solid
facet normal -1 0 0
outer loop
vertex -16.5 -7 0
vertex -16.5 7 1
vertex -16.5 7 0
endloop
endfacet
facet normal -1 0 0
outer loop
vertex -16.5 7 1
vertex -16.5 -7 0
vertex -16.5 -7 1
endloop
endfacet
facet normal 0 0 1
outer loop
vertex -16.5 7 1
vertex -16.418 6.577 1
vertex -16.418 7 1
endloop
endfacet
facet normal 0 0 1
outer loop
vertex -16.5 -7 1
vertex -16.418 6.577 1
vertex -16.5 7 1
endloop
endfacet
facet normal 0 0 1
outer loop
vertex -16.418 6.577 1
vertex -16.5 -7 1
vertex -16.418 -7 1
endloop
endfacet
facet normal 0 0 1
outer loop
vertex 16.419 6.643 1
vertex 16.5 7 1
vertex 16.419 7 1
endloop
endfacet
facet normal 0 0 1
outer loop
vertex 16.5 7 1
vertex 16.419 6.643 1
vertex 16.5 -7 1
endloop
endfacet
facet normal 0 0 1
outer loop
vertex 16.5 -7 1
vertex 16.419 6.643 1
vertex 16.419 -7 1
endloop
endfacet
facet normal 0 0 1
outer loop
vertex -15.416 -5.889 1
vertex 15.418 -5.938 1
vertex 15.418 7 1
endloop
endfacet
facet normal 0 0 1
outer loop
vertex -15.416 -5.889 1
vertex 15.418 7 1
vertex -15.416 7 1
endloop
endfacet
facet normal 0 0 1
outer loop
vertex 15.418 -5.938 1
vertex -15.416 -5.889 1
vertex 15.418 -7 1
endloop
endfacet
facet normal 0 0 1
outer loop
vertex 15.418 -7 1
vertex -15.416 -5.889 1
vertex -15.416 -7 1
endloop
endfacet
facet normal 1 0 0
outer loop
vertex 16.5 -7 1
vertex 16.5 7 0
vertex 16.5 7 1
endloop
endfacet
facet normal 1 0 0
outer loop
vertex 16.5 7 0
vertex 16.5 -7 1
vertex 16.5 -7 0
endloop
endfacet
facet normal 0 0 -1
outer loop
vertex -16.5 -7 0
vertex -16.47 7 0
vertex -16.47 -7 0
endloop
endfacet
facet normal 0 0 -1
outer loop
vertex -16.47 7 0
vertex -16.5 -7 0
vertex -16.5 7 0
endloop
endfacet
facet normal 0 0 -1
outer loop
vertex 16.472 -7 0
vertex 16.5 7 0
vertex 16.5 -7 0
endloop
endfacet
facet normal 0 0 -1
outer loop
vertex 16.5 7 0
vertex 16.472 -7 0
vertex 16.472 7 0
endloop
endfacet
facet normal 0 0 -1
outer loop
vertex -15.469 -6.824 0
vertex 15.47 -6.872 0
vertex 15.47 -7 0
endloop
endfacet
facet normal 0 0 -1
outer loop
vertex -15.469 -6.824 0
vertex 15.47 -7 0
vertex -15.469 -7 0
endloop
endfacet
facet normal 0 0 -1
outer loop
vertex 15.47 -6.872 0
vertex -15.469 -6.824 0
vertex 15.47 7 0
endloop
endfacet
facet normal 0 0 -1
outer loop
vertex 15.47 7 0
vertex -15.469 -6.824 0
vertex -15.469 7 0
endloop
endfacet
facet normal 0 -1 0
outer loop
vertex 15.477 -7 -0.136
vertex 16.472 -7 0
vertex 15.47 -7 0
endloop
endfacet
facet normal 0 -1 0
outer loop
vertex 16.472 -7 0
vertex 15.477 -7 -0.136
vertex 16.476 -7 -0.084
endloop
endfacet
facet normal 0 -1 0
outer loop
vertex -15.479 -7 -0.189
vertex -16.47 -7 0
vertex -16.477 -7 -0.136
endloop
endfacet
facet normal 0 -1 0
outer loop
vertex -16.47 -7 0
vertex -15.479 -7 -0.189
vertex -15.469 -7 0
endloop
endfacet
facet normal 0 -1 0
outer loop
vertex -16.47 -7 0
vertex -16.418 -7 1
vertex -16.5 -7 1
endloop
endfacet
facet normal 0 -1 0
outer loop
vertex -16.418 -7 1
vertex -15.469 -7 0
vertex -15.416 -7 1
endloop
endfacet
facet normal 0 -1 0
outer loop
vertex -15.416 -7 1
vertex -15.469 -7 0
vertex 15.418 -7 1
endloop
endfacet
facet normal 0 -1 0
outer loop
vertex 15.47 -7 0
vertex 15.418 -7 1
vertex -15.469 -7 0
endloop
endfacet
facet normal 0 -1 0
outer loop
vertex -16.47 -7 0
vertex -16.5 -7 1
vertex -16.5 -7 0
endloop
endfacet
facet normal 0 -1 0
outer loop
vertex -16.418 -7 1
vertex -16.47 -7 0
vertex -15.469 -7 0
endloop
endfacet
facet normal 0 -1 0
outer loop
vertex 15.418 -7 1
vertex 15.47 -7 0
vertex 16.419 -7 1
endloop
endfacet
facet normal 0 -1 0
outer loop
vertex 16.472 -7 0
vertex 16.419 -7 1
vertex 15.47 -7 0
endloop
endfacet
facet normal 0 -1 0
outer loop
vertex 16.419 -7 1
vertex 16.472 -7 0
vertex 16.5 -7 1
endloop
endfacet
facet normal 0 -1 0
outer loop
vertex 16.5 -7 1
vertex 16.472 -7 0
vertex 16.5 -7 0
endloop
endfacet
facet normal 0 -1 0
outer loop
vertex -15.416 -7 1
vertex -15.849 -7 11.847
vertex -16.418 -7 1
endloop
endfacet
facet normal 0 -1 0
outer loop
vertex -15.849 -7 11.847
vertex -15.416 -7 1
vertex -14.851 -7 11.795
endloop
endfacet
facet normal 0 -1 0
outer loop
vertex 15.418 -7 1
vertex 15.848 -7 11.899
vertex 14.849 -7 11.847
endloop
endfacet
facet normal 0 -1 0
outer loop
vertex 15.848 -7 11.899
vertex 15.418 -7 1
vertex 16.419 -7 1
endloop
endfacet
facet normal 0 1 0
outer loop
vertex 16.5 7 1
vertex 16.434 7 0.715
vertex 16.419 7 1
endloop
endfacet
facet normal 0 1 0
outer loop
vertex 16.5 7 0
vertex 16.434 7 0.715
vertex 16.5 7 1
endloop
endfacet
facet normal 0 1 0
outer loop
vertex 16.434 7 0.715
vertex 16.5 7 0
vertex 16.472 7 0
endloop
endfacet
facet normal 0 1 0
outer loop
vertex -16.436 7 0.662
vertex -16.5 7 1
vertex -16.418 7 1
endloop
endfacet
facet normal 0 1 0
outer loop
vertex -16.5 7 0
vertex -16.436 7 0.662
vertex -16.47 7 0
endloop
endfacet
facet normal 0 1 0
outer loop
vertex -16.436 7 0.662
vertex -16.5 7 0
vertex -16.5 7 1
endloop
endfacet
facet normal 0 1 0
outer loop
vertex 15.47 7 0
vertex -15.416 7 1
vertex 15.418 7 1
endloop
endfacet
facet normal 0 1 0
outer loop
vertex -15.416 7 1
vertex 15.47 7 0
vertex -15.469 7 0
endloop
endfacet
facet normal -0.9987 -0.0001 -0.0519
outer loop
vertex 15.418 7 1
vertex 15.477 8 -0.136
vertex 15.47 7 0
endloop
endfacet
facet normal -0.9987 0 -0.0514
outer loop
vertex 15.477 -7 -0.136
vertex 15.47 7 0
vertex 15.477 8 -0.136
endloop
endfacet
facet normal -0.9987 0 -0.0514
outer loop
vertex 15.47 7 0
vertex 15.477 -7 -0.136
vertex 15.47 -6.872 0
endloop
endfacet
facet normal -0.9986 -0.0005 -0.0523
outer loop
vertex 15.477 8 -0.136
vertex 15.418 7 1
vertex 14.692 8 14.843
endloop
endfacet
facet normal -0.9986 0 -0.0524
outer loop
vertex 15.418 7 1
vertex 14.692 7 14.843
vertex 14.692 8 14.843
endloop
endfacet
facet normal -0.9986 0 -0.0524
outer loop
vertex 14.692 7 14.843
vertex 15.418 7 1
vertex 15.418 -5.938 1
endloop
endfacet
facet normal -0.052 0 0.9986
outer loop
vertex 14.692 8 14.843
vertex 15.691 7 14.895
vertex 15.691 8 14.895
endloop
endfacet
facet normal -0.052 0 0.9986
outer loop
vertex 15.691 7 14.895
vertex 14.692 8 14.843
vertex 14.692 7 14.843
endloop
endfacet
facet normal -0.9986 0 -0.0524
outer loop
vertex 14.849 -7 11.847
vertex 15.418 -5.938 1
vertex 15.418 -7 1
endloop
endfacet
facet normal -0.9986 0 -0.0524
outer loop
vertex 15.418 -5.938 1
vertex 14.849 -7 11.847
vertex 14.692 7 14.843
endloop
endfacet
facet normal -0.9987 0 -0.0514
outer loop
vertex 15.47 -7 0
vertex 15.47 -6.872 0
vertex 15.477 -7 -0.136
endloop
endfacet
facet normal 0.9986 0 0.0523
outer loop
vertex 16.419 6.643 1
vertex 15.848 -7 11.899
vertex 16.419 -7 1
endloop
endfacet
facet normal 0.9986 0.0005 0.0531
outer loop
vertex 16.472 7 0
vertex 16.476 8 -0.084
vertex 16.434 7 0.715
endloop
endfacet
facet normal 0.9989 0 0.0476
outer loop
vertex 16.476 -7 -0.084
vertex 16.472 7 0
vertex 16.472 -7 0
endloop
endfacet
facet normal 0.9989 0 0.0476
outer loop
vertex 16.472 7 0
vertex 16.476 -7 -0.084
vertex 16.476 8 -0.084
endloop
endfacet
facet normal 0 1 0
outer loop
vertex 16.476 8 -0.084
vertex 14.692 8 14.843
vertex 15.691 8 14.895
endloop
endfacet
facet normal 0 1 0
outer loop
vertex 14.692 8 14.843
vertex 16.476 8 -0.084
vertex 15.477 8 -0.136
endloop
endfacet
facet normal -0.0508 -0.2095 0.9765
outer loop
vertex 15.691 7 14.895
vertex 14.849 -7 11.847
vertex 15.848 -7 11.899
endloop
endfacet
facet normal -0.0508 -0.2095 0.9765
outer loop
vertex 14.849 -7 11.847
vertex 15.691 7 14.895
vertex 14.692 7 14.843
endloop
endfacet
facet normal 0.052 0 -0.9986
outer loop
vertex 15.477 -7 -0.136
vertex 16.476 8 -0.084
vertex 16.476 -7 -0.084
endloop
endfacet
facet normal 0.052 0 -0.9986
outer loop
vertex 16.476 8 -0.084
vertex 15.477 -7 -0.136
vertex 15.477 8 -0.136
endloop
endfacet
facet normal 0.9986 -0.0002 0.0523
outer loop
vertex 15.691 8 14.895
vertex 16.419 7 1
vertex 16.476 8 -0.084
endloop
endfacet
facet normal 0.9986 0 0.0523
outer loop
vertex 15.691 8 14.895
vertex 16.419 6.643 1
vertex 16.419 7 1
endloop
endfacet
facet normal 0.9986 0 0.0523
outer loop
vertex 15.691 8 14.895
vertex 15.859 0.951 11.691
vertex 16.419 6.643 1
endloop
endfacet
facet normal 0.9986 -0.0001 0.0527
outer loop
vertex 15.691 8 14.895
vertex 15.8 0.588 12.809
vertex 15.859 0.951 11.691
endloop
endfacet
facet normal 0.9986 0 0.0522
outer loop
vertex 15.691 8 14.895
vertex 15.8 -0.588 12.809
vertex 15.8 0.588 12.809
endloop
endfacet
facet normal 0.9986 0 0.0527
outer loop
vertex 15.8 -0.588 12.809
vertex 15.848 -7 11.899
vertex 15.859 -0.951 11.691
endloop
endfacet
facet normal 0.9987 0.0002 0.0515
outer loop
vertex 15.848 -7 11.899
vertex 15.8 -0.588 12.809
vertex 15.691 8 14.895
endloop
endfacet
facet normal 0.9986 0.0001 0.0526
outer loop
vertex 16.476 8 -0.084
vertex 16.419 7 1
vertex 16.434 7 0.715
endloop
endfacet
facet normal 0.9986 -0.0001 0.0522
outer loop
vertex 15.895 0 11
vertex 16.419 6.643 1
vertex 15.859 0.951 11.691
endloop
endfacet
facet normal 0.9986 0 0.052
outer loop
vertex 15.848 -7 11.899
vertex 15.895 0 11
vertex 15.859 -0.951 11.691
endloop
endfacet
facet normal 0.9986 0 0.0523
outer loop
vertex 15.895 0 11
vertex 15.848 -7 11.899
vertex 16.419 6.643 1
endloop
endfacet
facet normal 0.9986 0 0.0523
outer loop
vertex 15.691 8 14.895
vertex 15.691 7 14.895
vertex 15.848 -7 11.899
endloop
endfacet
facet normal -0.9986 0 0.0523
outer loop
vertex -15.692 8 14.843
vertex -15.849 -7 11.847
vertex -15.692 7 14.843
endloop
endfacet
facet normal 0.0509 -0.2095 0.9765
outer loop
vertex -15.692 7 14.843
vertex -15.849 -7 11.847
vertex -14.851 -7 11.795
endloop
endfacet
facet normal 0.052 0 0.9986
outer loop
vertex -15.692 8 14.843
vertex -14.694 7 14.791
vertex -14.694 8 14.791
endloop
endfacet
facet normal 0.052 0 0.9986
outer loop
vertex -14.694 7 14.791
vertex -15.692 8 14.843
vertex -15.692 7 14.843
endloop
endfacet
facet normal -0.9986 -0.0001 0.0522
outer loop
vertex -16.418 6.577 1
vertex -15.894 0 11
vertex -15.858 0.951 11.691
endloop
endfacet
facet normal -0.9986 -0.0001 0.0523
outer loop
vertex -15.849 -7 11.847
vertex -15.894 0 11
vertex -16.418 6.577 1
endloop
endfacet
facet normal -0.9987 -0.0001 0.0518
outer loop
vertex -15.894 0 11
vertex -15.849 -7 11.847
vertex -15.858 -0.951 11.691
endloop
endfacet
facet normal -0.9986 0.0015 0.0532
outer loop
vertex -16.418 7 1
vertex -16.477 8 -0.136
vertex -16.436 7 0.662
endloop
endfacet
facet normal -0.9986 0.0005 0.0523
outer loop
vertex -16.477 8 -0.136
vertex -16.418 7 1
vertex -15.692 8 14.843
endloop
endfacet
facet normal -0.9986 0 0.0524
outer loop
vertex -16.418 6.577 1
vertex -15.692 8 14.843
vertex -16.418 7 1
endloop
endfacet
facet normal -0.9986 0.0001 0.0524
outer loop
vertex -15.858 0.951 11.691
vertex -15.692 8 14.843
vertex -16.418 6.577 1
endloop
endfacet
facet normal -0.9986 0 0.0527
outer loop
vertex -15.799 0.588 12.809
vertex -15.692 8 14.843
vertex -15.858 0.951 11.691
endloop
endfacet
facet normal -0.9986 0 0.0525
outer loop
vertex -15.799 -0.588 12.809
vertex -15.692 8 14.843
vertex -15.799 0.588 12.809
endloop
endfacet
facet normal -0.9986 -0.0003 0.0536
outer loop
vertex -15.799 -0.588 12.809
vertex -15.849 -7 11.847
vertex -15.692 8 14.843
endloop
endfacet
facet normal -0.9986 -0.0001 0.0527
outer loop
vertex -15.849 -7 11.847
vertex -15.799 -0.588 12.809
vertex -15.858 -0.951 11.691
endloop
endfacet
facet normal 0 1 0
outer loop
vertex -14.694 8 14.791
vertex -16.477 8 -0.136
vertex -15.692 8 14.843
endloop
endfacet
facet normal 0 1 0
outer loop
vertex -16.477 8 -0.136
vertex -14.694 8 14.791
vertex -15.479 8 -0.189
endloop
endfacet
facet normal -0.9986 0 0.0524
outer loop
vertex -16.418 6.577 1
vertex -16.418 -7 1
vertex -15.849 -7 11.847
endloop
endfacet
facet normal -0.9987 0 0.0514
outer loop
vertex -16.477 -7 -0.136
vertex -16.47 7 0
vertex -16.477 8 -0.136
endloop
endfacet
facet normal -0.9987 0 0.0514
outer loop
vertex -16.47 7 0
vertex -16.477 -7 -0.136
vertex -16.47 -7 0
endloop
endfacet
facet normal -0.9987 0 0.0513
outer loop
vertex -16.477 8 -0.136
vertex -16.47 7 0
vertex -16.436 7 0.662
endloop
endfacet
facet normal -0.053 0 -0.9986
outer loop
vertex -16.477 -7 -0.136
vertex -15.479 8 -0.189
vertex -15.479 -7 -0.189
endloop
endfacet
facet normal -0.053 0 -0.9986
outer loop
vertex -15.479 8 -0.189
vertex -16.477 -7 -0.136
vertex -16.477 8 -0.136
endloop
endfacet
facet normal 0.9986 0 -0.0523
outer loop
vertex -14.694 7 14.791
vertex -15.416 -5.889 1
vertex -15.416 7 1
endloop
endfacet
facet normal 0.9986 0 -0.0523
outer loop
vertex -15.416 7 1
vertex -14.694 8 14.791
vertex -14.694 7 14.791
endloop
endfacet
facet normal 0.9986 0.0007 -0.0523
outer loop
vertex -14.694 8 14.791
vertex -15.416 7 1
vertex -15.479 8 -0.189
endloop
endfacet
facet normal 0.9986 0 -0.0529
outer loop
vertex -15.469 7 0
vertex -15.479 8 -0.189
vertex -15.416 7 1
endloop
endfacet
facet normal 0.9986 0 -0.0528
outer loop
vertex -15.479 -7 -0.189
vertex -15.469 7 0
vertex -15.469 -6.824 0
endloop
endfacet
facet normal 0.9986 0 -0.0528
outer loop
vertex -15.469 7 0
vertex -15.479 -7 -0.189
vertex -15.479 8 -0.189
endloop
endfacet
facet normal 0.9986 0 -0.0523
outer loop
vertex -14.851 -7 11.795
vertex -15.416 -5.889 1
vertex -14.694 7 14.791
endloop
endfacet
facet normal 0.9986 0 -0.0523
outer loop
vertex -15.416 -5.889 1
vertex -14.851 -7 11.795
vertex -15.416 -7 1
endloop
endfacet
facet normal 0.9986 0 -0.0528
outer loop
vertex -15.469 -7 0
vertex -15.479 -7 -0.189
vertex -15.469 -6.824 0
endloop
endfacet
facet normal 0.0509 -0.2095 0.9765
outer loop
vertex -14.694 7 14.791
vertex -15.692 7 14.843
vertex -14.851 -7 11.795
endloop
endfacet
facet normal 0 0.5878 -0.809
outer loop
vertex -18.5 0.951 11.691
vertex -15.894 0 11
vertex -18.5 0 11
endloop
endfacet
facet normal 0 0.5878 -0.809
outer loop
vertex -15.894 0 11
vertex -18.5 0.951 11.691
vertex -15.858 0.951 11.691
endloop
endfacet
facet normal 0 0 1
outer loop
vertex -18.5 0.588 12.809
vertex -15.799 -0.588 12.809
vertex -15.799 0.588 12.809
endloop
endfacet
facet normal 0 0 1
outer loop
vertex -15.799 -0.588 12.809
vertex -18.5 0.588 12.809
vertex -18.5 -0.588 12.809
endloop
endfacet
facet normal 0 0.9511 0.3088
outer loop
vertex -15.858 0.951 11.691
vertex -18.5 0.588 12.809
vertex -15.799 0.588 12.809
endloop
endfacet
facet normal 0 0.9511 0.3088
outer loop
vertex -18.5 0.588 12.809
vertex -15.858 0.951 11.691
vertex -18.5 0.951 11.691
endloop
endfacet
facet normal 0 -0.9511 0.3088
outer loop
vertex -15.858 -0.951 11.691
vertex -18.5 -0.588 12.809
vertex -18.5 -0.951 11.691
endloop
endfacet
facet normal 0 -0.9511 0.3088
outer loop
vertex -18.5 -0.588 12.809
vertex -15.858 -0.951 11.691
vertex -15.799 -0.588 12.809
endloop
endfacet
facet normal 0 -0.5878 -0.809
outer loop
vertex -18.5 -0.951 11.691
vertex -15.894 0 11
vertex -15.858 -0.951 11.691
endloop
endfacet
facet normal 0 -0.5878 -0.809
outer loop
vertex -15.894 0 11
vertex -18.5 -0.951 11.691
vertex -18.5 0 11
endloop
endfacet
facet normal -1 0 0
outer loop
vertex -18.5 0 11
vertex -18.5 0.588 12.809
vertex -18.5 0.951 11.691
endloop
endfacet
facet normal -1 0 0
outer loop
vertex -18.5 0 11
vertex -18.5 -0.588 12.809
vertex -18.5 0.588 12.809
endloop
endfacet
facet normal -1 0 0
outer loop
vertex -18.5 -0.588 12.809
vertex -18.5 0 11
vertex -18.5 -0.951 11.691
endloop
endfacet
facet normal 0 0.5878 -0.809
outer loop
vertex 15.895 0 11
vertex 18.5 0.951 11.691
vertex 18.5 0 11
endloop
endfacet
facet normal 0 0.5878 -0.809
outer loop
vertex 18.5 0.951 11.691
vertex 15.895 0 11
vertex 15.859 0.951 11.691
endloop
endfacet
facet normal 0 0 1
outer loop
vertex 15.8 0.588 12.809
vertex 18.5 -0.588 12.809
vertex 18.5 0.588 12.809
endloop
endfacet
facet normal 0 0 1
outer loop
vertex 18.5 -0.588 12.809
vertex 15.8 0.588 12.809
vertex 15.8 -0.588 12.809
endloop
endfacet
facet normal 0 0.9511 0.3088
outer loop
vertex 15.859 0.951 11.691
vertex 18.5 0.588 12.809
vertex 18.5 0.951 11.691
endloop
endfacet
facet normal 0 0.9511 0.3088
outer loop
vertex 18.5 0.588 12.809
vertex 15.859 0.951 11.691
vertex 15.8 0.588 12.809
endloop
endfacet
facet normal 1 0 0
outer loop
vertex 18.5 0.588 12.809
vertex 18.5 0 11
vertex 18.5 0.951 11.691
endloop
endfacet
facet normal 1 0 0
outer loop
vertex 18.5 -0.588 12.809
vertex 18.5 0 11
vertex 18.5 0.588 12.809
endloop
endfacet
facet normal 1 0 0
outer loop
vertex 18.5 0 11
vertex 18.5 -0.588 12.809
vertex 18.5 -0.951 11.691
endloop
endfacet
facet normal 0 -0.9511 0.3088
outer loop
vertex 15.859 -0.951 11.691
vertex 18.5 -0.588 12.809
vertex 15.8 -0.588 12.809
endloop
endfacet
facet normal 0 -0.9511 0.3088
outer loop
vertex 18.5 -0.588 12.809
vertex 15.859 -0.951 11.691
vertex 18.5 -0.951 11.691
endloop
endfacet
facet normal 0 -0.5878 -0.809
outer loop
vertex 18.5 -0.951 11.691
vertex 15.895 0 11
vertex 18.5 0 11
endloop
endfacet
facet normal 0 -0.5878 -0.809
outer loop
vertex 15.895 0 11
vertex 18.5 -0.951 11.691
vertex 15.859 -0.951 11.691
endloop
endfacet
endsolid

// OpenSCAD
w=33;
f=14;

//SUELO

translate([-w/2,-f/2,0])
cube( [w,f,1], false );

//PARED

translate([-1,0,-1])
rotate( [0,-3,0] )

hull() {

translate([w/2,f/2,0])
cube( [1,1,15], false );

translate([w/2,-f/2,0])
cube( [1,1,12], false );

}


//PARED

translate([0,0,-1])
rotate( [0,3,0] )

hull() {

translate([-w/2,f/2,0])
cube( [1,1,15], false );

translate([-w/2,-f/2,0])
cube( [1,1,12], false );

}

//PESTAÑA

translate([-w/2-2,0,12])
rotate([0,90,0])
cylinder( 3, 1, 1 );

translate([w/2-1,0,12])
rotate([0,90,0])
cylinder( 3, 1, 1 );
